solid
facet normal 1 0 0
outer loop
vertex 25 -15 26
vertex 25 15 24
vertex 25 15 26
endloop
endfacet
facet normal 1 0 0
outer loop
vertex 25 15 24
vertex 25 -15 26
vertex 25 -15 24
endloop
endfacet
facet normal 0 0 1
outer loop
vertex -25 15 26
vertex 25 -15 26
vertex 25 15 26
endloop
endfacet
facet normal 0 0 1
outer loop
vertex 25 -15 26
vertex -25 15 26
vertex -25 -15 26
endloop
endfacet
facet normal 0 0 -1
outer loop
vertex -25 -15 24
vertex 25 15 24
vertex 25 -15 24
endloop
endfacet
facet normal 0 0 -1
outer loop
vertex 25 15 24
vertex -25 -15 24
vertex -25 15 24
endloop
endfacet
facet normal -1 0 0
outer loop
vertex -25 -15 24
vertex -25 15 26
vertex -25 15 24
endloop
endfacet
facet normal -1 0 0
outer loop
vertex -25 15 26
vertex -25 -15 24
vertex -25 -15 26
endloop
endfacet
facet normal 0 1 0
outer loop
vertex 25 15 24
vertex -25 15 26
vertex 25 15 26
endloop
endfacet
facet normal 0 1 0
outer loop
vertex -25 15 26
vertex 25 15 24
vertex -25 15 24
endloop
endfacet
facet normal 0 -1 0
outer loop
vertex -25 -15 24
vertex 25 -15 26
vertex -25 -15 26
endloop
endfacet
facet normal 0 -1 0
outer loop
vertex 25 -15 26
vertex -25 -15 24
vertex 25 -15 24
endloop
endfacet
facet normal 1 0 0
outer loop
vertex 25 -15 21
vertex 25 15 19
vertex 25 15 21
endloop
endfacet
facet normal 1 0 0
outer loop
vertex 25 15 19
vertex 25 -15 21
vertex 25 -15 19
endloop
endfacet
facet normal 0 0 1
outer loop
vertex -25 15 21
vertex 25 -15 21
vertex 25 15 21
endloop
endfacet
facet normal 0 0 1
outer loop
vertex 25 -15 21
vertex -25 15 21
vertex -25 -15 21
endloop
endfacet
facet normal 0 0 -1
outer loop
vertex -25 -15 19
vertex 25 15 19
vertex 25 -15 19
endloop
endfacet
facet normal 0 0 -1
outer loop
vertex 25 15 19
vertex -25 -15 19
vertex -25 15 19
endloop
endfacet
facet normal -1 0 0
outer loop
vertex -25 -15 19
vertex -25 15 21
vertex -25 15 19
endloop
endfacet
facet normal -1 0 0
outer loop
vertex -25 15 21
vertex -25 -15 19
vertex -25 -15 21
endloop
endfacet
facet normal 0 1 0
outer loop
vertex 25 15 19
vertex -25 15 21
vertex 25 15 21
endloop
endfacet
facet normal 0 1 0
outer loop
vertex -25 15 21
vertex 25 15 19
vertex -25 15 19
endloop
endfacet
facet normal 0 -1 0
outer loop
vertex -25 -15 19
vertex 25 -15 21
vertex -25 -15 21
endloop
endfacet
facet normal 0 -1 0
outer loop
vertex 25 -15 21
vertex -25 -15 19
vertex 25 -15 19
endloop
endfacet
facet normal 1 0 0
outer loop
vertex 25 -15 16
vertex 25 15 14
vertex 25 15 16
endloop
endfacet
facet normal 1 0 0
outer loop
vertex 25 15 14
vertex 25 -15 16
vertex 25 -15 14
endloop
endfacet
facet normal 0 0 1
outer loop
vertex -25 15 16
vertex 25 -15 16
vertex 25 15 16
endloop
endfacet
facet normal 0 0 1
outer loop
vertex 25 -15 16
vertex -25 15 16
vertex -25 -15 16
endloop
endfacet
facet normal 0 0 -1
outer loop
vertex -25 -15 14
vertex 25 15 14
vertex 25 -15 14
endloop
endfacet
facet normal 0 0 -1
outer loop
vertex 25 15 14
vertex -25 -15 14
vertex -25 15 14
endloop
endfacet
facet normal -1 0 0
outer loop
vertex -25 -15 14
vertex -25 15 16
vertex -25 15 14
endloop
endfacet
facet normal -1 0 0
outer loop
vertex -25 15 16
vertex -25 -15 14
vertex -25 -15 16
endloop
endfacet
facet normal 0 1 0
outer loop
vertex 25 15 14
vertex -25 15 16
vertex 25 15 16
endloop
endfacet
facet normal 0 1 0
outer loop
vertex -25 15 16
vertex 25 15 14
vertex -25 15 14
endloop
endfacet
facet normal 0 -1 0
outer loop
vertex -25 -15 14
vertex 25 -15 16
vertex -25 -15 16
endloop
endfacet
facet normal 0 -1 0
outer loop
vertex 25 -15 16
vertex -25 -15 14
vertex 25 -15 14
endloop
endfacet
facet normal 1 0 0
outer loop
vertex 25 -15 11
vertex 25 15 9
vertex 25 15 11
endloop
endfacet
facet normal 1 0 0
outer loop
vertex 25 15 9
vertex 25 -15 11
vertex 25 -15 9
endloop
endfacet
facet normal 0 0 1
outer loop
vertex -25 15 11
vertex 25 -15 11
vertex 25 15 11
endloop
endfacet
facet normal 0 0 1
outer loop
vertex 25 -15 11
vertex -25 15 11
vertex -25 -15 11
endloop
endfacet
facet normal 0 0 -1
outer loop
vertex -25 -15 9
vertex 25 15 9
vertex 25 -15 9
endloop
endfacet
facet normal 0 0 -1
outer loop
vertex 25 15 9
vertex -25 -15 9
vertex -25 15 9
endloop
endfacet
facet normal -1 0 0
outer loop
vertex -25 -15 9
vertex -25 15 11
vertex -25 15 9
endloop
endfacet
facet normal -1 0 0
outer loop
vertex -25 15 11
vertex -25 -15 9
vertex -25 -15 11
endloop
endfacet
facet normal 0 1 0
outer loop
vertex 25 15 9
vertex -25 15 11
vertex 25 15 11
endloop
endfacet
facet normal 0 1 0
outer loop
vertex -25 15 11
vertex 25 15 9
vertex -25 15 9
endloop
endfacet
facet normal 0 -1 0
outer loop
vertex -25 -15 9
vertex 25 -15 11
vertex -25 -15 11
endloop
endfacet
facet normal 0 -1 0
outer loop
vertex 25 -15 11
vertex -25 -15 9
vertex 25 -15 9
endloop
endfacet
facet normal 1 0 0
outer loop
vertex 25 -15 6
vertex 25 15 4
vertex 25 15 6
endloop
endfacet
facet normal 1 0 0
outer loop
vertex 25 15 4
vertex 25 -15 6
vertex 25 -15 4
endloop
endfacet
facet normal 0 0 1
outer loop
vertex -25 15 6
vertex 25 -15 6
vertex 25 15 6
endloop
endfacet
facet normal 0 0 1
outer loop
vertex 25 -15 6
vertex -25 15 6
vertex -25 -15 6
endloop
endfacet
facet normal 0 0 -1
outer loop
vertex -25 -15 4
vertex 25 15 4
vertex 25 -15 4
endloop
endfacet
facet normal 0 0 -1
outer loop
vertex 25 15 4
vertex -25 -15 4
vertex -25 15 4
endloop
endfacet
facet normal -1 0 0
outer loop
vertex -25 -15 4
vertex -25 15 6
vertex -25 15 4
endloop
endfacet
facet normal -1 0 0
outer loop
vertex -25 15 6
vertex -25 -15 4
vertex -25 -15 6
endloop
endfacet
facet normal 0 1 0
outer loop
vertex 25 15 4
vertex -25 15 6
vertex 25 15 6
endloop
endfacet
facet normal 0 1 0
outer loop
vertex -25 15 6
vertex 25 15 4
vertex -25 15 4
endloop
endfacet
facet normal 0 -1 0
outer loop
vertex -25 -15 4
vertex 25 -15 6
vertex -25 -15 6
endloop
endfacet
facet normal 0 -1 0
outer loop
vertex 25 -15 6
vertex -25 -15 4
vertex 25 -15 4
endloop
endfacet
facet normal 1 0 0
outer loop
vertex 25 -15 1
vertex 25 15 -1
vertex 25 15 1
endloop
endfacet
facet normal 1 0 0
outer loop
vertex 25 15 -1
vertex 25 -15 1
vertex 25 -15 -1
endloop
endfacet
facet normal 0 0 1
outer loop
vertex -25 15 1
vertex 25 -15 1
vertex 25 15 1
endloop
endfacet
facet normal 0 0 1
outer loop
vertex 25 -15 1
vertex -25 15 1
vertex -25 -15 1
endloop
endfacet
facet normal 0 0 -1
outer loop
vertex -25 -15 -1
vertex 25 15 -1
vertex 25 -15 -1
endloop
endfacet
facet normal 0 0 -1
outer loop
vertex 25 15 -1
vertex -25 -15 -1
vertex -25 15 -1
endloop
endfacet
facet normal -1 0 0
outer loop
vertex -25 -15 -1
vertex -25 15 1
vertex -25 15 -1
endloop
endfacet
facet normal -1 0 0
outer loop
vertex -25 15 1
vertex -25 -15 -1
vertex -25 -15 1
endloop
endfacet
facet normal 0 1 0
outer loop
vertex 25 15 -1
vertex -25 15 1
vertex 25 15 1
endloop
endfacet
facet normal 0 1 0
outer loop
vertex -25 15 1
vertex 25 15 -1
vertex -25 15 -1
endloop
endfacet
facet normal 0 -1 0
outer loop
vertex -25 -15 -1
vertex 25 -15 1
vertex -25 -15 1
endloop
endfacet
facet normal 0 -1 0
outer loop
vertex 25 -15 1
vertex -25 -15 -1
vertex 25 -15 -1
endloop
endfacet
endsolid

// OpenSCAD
// Parameters for the rectangular plate
plate_length = 50;  // Length of the plate
plate_width = 30;   // Width of the plate
plate_thickness = 2; // Thickness of the plate
plate_spacing = 5;  // Spacing between plates

// Function to create a rectangular plate
module rectangular_plate() {
    cube([plate_length, plate_width, plate_thickness], center = true);
}

// Stack the plates based on the positional relationship
translate([0, 0, plate_spacing * 5]) rectangular_plate(); // Layer 1
translate([0, 0, plate_spacing * 4]) rectangular_plate(); // Layer 2
translate([0, 0, plate_spacing * 3]) rectangular_plate(); // Layer 3
translate([0, 0, plate_spacing * 2]) rectangular_plate(); // Layer 4
translate([0, 0, plate_spacing * 1]) rectangular_plate(); // Layer 5
translate([0, 0, plate_spacing * 0]) rectangular_plate(); // Layer 6
